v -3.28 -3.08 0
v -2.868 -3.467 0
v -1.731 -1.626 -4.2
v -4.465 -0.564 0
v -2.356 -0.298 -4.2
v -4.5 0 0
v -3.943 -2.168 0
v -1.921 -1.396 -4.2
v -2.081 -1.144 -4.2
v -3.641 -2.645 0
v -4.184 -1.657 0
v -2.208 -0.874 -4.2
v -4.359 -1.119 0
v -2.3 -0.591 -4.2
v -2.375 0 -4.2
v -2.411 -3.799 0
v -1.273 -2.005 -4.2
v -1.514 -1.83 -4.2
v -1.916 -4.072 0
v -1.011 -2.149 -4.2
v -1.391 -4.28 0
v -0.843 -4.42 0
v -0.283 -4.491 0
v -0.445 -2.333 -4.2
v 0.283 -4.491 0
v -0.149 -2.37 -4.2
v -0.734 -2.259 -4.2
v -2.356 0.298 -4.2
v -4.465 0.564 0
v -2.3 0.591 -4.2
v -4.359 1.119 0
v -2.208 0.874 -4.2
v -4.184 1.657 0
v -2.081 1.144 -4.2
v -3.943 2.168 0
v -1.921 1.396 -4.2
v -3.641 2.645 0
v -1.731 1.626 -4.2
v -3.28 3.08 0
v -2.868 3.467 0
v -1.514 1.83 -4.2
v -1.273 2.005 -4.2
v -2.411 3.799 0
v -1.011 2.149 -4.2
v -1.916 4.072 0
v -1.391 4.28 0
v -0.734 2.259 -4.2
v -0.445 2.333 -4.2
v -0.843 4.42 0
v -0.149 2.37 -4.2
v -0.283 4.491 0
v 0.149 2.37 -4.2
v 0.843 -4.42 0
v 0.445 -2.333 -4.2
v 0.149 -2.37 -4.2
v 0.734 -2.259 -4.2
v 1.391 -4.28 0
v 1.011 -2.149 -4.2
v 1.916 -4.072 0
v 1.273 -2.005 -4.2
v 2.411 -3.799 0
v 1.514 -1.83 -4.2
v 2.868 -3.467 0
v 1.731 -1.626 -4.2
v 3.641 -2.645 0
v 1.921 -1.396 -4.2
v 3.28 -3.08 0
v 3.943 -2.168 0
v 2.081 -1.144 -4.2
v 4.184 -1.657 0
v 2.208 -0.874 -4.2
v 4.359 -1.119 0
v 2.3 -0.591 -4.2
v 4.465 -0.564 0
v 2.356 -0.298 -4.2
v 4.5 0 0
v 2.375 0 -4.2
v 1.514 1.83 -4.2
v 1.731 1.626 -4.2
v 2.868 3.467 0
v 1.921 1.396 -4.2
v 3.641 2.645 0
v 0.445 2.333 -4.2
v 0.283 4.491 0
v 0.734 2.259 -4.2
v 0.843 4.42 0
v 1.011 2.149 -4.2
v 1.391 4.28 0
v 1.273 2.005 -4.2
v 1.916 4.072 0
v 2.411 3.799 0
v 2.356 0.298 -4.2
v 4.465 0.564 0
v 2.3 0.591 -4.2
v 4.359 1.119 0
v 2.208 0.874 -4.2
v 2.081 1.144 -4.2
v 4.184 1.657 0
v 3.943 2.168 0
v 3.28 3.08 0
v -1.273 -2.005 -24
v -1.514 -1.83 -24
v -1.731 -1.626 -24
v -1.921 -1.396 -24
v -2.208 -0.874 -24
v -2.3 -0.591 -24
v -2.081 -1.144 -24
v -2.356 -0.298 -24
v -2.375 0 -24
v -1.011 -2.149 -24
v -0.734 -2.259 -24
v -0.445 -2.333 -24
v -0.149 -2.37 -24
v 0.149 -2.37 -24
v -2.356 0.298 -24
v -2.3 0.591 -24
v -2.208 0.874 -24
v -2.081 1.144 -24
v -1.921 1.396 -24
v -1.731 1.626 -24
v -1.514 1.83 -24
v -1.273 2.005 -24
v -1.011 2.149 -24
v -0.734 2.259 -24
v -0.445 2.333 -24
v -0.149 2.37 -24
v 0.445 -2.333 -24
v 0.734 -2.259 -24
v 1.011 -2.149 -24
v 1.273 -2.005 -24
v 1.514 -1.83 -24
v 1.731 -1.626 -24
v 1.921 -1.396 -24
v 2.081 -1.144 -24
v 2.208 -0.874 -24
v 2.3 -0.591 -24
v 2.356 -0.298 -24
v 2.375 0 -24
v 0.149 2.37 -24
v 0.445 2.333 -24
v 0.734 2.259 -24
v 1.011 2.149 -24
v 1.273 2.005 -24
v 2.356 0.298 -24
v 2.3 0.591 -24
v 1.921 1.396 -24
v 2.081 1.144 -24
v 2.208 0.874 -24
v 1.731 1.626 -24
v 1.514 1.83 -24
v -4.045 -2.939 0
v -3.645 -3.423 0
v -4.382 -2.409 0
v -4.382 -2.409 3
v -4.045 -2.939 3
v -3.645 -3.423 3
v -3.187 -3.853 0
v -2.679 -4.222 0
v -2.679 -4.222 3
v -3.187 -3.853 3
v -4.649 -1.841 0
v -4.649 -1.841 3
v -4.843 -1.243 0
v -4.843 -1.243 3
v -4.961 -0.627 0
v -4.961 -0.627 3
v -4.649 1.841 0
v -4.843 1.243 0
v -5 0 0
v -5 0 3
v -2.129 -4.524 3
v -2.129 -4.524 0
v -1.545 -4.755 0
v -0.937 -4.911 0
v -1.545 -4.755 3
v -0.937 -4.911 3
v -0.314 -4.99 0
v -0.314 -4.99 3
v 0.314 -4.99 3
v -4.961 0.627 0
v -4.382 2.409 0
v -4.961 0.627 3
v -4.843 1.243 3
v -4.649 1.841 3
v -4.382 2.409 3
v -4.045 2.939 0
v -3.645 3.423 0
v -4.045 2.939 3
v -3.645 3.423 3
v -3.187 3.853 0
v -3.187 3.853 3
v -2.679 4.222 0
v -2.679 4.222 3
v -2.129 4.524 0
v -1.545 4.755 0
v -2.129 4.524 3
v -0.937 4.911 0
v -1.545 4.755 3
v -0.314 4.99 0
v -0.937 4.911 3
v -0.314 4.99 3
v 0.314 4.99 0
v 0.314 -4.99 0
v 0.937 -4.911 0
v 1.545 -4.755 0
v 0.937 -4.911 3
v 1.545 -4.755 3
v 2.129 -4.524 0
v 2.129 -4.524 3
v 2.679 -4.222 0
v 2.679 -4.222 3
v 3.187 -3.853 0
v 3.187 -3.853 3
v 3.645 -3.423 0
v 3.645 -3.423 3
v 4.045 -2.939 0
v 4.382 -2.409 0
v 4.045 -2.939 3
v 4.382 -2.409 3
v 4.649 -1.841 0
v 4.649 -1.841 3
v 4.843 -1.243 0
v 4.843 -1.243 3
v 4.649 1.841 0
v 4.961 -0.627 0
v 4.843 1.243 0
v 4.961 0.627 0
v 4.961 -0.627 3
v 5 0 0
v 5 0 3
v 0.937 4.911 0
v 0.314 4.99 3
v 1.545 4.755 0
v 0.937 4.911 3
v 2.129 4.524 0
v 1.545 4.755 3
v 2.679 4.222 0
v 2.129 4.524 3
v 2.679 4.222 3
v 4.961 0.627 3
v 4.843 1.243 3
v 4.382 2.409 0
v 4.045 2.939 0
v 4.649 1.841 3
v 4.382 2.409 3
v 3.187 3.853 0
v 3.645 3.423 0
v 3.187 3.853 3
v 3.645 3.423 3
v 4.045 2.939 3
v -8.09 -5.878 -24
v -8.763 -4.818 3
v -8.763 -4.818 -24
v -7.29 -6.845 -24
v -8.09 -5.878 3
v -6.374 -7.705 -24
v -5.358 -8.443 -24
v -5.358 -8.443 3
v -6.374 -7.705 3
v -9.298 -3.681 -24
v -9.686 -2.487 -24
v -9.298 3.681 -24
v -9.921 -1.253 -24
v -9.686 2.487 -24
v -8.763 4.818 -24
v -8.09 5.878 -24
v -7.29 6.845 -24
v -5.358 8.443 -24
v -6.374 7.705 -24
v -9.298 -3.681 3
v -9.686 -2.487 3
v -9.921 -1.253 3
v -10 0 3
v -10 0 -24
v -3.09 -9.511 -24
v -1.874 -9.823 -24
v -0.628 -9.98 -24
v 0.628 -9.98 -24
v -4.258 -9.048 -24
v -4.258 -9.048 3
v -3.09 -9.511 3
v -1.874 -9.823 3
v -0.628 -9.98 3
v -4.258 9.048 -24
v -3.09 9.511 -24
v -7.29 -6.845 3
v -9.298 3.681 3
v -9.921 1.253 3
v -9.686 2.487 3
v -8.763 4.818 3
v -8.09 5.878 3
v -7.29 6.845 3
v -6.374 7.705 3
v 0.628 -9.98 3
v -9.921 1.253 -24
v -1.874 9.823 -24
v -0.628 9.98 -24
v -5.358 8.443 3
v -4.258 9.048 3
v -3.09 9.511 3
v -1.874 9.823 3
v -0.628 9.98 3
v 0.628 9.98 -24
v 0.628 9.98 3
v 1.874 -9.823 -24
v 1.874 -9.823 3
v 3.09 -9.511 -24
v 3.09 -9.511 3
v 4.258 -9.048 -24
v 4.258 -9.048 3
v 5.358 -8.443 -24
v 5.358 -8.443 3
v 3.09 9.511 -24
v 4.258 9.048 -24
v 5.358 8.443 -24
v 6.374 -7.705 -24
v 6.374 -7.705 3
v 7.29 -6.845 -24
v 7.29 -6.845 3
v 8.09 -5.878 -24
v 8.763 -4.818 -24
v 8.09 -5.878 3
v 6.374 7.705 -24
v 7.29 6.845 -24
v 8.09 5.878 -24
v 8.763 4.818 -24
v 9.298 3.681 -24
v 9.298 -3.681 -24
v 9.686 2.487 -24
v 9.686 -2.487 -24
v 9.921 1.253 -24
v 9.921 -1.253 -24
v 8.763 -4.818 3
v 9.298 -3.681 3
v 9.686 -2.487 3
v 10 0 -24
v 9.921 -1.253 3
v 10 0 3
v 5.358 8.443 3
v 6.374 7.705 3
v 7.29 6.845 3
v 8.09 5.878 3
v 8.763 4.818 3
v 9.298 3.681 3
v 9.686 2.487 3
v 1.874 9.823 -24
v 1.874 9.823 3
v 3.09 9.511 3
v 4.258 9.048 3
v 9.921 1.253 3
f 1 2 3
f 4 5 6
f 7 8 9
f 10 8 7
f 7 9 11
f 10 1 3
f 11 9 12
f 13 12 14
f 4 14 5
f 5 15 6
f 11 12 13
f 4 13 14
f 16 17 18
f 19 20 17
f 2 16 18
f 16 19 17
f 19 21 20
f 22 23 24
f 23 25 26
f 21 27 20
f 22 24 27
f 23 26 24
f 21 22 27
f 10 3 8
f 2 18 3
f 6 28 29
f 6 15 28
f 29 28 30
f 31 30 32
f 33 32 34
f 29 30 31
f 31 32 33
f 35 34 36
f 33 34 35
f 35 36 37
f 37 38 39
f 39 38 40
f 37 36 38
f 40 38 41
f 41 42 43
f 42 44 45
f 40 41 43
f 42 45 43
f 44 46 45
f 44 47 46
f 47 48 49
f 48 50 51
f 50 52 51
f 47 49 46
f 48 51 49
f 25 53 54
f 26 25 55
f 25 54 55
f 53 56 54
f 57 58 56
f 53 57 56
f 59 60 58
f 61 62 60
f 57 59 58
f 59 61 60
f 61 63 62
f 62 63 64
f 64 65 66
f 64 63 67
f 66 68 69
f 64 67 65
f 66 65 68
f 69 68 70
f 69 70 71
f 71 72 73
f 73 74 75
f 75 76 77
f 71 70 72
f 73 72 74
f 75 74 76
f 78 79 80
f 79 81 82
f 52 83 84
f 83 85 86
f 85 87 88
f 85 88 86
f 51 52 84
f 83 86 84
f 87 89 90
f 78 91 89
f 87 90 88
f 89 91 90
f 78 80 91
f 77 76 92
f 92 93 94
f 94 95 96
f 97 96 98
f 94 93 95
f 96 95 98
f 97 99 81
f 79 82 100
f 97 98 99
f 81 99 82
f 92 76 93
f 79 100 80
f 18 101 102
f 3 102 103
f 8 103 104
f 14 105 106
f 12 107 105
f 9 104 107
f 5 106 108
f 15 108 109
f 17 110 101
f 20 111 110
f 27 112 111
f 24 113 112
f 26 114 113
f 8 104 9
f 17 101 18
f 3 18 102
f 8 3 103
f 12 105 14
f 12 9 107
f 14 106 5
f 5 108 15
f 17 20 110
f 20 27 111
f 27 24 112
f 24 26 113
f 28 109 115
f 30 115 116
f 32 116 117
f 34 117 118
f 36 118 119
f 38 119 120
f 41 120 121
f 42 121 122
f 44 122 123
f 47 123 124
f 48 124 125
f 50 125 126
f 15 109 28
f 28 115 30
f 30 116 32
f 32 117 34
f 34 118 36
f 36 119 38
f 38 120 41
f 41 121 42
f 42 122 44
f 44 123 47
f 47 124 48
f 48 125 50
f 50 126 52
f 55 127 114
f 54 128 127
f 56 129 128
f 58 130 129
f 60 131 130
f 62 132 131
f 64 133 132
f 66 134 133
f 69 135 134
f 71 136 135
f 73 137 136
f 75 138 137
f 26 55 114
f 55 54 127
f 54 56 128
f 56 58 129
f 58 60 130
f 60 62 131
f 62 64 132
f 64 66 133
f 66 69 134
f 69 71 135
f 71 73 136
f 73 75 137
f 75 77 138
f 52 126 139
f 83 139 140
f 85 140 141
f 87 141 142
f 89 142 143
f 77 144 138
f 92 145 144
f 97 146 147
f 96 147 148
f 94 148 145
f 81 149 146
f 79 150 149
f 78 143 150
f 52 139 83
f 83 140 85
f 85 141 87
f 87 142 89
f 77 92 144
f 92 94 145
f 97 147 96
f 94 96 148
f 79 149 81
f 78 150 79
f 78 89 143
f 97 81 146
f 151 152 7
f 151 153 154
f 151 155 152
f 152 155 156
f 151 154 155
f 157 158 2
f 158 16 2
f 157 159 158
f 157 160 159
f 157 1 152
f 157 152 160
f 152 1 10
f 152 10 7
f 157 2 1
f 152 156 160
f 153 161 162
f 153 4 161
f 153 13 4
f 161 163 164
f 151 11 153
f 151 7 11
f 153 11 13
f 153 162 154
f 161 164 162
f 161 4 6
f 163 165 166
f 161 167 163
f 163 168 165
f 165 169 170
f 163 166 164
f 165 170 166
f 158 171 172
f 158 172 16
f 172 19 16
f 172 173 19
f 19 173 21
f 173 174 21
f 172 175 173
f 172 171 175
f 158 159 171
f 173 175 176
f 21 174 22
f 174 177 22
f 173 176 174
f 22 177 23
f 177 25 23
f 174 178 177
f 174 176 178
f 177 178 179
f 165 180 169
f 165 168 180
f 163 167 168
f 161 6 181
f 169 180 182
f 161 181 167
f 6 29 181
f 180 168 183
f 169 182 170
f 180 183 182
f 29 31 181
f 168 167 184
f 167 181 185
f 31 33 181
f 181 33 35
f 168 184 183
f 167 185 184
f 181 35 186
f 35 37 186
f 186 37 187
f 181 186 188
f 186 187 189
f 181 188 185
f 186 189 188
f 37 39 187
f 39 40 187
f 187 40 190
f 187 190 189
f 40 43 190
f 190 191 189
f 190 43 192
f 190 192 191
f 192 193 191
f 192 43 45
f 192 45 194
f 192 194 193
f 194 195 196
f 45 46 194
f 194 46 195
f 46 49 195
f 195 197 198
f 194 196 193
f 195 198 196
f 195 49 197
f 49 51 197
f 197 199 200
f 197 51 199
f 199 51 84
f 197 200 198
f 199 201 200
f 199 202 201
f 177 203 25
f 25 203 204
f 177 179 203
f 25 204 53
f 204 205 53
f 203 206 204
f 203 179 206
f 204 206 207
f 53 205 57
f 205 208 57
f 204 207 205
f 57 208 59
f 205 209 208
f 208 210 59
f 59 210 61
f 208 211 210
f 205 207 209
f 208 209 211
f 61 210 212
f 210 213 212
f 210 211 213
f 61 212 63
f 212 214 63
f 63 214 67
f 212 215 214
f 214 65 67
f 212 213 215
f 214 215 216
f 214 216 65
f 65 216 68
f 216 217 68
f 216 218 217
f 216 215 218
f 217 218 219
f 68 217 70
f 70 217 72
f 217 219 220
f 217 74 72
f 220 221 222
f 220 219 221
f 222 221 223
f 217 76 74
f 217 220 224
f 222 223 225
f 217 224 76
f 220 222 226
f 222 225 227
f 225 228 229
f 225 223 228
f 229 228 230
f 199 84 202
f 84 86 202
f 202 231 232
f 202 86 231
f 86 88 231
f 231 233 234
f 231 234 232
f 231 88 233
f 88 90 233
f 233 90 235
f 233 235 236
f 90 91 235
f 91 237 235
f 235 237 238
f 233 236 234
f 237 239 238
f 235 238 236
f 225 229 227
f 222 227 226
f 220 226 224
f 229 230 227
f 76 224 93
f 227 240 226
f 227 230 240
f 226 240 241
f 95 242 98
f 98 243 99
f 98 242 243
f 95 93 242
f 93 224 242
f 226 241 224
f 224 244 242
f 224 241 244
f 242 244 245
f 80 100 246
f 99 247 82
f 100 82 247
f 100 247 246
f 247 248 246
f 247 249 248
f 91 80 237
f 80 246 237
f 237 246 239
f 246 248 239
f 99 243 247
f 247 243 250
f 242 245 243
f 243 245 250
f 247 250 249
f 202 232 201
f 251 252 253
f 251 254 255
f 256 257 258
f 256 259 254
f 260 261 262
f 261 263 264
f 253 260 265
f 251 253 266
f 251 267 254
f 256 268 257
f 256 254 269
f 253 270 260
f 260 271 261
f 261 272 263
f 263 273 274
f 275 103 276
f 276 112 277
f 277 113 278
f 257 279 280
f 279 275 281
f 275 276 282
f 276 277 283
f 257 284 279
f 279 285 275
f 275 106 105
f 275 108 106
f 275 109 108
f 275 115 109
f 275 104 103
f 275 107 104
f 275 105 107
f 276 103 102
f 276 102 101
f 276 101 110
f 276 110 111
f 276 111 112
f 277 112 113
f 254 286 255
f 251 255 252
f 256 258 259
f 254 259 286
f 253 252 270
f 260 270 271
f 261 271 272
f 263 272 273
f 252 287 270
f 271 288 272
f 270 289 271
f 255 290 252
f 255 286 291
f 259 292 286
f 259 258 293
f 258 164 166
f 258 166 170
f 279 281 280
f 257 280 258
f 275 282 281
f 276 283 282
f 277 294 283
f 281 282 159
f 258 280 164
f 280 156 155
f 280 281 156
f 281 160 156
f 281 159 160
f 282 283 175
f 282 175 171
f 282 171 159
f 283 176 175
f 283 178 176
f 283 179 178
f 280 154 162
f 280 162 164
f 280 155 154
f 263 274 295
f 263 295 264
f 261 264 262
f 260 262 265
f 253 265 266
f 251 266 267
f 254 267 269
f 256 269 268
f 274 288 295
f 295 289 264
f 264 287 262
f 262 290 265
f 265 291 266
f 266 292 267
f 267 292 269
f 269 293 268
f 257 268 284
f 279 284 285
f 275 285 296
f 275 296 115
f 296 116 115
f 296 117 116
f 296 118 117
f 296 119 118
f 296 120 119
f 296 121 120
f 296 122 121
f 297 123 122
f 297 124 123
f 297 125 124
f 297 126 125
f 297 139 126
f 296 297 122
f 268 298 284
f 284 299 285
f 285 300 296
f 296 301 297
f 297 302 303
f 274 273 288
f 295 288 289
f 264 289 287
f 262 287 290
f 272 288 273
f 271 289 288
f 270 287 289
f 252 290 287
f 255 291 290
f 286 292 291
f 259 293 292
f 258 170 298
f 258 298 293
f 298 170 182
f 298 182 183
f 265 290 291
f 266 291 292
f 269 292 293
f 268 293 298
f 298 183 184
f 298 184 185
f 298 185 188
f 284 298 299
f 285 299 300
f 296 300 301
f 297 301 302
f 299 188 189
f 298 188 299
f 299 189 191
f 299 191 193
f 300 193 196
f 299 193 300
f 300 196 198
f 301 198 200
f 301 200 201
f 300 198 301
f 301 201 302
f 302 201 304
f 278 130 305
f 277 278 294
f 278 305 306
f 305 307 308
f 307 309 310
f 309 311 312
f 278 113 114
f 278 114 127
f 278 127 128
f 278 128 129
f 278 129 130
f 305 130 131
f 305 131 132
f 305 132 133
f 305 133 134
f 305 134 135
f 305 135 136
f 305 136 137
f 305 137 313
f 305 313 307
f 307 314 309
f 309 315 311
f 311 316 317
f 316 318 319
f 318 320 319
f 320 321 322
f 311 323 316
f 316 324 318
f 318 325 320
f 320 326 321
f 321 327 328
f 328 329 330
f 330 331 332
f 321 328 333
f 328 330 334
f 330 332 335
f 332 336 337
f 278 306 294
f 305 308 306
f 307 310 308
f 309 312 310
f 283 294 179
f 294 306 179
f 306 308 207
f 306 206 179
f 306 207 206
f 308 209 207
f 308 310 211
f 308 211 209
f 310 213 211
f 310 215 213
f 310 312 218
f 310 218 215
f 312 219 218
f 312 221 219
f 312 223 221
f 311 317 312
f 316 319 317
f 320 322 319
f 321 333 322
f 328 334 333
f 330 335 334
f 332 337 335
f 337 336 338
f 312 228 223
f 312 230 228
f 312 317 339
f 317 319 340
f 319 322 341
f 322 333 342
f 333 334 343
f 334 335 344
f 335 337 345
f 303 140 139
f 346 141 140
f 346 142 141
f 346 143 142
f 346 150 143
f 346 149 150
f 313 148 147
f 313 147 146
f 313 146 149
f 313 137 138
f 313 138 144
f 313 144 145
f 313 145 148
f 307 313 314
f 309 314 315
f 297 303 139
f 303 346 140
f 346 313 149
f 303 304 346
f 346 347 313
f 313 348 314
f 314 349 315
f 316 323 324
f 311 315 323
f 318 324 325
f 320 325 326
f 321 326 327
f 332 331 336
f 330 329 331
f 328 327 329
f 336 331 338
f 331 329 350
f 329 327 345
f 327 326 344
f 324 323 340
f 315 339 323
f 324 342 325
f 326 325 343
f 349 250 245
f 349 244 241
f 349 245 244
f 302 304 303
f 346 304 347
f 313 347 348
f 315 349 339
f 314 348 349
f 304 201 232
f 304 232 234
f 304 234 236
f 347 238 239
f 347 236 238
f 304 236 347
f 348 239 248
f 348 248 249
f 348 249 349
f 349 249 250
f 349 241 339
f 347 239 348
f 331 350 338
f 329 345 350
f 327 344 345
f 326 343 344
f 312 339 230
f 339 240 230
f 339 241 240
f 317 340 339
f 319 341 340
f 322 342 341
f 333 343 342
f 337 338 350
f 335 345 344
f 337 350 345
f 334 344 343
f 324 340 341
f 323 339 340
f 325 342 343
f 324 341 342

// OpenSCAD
$fn = 50;

difference() {
	union() {
		translate(v = [0, 0, -24.0]) {
			cylinder(h = 27, r = 10.0);
		}
	}
	union() {
		translate(v = [0, 0, 0]) {
			rotate(a = [0, 0, 0]) {
				difference() {
					union() {
						translate(v = [0, 0, -27.0]) {
							cylinder(h = 27, r = 2.25);
						}
						translate(v = [0, 0, -4.2]) {
							cylinder(h = 4.2, r1 = 2.375, r2 = 4.5);
						}
						translate(v = [0, 0, -27.0]) {
							cylinder(h = 27, r = 2.375);
						}
						translate(v = [0, 0, -27.0]) {
							cylinder(h = 27, r = 2.25);
						}
					}
					union();
				}
			}
		}
		#cylinder(h = 3, r = 5.0);
	}
}
